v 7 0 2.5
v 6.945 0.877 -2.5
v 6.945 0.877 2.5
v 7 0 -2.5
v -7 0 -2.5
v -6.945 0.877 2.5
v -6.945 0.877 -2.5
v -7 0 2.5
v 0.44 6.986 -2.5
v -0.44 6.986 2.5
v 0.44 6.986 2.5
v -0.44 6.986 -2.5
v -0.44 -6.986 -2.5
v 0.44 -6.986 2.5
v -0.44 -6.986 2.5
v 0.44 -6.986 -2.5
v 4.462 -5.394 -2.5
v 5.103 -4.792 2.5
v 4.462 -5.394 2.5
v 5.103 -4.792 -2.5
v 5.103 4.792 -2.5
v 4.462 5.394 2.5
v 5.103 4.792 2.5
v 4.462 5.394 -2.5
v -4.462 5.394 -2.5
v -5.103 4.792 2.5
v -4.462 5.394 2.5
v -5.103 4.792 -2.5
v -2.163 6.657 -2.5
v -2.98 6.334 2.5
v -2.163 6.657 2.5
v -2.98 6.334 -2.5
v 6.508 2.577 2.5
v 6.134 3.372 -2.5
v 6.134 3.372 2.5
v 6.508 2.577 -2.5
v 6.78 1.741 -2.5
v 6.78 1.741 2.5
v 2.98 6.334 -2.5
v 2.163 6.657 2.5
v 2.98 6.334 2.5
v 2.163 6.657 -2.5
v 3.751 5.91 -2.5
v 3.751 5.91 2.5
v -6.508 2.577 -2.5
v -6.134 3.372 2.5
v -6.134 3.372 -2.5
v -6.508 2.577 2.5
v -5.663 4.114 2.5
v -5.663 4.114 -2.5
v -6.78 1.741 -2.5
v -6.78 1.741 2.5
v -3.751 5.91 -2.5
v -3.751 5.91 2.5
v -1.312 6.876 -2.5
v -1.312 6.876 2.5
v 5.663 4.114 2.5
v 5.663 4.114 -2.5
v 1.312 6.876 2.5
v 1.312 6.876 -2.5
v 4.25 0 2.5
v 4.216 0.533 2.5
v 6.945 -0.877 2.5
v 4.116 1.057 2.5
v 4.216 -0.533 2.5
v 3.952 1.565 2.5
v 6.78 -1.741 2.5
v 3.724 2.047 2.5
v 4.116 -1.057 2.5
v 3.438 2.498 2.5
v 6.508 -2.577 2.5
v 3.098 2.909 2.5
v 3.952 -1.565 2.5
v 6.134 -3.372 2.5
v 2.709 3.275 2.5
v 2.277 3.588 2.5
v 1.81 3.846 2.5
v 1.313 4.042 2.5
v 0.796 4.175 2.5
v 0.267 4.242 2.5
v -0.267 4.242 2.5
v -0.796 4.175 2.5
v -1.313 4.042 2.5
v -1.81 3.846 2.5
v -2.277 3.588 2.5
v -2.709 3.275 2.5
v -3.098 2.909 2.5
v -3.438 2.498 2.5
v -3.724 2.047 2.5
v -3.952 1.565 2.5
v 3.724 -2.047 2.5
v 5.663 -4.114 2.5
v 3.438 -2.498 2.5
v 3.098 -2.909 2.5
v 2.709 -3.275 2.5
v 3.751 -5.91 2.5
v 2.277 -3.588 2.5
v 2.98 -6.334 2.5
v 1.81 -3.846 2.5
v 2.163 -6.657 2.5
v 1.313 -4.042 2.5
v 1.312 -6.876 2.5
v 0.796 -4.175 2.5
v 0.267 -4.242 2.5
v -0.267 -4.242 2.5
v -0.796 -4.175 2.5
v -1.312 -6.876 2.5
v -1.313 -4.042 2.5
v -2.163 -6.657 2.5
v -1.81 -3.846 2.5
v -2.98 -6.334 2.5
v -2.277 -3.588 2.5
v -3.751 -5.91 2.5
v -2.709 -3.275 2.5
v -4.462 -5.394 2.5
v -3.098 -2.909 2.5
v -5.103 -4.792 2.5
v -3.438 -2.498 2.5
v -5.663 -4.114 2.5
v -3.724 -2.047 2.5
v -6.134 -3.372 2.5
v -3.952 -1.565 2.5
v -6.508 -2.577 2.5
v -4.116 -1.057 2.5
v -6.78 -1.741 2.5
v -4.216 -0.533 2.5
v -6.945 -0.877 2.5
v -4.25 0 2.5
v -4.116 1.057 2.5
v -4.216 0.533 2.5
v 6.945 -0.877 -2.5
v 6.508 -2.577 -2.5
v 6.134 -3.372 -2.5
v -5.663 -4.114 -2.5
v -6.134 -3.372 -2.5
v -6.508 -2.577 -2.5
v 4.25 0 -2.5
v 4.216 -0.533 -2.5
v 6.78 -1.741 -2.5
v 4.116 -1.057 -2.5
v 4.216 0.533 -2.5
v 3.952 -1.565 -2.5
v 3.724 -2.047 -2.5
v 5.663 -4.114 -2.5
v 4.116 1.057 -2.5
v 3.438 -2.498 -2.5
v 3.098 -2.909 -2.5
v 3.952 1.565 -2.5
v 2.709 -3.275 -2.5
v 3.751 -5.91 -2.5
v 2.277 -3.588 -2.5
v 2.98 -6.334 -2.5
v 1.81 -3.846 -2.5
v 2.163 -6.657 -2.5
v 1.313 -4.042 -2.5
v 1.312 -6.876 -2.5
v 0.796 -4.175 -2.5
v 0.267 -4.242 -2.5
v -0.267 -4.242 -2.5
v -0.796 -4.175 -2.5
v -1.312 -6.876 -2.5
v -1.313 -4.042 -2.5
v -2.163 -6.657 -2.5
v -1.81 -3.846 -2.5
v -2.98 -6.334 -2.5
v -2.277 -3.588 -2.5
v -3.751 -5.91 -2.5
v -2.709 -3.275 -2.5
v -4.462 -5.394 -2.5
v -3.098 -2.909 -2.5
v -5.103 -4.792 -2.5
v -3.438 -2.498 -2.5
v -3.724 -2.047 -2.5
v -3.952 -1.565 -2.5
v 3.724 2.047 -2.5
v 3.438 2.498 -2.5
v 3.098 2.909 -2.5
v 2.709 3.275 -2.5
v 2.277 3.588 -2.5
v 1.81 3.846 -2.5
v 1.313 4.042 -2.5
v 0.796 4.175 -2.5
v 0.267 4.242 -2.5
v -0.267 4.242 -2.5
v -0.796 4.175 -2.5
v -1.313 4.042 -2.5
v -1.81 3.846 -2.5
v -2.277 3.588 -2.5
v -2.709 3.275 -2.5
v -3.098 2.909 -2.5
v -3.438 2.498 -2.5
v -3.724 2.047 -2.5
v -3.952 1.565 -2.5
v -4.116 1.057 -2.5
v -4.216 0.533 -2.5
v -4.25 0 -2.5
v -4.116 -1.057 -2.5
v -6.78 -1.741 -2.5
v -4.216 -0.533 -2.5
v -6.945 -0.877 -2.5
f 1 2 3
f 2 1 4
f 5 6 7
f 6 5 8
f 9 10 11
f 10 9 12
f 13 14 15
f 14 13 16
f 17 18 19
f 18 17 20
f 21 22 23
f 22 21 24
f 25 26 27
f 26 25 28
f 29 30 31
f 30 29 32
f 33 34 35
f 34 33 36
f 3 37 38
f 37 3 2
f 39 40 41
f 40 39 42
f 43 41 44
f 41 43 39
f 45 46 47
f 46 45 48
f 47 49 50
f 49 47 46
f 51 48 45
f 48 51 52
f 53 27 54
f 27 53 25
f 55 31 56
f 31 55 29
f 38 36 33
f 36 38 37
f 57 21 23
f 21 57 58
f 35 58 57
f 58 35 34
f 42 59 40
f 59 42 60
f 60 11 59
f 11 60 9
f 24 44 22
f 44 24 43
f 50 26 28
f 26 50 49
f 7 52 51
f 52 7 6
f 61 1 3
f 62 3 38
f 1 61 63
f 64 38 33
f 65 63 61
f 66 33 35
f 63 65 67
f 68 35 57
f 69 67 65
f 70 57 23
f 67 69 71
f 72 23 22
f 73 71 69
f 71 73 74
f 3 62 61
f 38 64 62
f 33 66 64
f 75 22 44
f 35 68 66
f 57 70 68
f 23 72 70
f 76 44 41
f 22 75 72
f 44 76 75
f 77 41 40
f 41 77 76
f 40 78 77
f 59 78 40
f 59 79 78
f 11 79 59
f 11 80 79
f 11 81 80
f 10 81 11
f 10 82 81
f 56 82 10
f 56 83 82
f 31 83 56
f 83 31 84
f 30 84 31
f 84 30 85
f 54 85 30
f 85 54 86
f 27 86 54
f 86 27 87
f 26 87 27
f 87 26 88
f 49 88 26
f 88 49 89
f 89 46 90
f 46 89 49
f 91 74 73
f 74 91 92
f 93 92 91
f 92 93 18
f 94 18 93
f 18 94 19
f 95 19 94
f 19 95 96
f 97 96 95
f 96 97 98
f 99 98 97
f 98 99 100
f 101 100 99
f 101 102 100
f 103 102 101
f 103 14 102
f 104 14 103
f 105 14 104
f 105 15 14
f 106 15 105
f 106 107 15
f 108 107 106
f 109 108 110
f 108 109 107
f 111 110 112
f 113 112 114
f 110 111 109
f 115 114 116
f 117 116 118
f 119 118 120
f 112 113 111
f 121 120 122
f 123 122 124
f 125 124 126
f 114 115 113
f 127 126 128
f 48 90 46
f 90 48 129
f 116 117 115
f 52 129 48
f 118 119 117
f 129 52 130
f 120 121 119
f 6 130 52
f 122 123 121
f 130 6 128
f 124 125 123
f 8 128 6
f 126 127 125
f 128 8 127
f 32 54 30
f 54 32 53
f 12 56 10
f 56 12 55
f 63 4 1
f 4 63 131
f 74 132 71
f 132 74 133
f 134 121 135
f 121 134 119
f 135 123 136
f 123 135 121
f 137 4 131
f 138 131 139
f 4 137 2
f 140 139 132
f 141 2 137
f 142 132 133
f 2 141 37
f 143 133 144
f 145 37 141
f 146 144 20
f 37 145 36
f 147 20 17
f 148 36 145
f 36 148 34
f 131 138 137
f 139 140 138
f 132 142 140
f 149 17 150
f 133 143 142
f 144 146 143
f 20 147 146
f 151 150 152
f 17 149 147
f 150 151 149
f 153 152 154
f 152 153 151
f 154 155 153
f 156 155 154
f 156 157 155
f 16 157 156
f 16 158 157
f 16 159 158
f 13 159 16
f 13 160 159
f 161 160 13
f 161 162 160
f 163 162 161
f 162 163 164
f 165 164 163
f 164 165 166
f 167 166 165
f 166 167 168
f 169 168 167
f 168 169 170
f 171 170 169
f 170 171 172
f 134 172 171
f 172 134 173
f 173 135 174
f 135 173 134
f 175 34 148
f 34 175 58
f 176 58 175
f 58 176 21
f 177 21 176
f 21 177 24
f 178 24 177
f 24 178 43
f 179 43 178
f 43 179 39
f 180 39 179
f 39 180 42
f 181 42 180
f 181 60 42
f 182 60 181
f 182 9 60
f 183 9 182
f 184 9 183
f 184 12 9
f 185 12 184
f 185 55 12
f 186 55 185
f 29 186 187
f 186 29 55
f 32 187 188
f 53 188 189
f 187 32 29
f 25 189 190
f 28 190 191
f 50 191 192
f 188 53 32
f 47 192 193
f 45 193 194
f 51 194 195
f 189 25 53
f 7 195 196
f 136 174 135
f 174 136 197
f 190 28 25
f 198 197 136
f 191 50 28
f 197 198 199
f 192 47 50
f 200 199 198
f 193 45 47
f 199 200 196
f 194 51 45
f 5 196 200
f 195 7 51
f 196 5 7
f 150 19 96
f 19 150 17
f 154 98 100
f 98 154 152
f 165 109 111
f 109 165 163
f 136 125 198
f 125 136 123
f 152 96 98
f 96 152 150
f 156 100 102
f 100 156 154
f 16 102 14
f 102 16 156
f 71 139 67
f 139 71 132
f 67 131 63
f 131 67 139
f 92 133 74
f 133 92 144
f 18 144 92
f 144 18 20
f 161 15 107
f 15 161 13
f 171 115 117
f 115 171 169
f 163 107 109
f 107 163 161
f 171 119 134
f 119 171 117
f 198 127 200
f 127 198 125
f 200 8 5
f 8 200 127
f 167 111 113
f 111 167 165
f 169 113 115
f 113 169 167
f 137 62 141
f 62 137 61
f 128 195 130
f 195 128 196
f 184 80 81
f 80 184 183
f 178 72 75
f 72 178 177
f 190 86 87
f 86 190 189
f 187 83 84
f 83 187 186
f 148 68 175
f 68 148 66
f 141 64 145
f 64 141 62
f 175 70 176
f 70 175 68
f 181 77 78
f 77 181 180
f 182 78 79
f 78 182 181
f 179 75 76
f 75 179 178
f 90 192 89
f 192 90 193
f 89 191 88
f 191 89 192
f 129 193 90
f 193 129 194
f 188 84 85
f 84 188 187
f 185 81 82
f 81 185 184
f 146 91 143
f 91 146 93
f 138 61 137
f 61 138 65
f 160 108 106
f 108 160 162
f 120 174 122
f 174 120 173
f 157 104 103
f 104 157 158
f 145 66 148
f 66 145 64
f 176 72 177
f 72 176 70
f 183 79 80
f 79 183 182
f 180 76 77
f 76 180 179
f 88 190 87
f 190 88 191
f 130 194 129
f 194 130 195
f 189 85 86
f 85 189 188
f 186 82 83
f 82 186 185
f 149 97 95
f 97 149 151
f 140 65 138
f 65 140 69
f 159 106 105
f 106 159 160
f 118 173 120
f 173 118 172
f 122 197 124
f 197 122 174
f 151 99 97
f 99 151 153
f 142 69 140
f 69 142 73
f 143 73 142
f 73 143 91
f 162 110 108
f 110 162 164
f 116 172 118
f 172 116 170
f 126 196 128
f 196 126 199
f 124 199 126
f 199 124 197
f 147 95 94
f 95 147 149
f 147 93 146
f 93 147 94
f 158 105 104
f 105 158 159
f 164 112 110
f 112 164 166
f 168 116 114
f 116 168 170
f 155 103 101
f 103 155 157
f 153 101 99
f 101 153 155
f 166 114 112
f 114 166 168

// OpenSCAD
$fn = 50;


difference() {
	union() {
		translate(v = [0, 0, -2.5000000000]) {
			cylinder(h = 5, r = 7.0000000000);
		}
	}
	union() {
		translate(v = [0, 0, -100.0000000000]) {
			cylinder(h = 200, r = 4.2500000000);
		}
	}
}
